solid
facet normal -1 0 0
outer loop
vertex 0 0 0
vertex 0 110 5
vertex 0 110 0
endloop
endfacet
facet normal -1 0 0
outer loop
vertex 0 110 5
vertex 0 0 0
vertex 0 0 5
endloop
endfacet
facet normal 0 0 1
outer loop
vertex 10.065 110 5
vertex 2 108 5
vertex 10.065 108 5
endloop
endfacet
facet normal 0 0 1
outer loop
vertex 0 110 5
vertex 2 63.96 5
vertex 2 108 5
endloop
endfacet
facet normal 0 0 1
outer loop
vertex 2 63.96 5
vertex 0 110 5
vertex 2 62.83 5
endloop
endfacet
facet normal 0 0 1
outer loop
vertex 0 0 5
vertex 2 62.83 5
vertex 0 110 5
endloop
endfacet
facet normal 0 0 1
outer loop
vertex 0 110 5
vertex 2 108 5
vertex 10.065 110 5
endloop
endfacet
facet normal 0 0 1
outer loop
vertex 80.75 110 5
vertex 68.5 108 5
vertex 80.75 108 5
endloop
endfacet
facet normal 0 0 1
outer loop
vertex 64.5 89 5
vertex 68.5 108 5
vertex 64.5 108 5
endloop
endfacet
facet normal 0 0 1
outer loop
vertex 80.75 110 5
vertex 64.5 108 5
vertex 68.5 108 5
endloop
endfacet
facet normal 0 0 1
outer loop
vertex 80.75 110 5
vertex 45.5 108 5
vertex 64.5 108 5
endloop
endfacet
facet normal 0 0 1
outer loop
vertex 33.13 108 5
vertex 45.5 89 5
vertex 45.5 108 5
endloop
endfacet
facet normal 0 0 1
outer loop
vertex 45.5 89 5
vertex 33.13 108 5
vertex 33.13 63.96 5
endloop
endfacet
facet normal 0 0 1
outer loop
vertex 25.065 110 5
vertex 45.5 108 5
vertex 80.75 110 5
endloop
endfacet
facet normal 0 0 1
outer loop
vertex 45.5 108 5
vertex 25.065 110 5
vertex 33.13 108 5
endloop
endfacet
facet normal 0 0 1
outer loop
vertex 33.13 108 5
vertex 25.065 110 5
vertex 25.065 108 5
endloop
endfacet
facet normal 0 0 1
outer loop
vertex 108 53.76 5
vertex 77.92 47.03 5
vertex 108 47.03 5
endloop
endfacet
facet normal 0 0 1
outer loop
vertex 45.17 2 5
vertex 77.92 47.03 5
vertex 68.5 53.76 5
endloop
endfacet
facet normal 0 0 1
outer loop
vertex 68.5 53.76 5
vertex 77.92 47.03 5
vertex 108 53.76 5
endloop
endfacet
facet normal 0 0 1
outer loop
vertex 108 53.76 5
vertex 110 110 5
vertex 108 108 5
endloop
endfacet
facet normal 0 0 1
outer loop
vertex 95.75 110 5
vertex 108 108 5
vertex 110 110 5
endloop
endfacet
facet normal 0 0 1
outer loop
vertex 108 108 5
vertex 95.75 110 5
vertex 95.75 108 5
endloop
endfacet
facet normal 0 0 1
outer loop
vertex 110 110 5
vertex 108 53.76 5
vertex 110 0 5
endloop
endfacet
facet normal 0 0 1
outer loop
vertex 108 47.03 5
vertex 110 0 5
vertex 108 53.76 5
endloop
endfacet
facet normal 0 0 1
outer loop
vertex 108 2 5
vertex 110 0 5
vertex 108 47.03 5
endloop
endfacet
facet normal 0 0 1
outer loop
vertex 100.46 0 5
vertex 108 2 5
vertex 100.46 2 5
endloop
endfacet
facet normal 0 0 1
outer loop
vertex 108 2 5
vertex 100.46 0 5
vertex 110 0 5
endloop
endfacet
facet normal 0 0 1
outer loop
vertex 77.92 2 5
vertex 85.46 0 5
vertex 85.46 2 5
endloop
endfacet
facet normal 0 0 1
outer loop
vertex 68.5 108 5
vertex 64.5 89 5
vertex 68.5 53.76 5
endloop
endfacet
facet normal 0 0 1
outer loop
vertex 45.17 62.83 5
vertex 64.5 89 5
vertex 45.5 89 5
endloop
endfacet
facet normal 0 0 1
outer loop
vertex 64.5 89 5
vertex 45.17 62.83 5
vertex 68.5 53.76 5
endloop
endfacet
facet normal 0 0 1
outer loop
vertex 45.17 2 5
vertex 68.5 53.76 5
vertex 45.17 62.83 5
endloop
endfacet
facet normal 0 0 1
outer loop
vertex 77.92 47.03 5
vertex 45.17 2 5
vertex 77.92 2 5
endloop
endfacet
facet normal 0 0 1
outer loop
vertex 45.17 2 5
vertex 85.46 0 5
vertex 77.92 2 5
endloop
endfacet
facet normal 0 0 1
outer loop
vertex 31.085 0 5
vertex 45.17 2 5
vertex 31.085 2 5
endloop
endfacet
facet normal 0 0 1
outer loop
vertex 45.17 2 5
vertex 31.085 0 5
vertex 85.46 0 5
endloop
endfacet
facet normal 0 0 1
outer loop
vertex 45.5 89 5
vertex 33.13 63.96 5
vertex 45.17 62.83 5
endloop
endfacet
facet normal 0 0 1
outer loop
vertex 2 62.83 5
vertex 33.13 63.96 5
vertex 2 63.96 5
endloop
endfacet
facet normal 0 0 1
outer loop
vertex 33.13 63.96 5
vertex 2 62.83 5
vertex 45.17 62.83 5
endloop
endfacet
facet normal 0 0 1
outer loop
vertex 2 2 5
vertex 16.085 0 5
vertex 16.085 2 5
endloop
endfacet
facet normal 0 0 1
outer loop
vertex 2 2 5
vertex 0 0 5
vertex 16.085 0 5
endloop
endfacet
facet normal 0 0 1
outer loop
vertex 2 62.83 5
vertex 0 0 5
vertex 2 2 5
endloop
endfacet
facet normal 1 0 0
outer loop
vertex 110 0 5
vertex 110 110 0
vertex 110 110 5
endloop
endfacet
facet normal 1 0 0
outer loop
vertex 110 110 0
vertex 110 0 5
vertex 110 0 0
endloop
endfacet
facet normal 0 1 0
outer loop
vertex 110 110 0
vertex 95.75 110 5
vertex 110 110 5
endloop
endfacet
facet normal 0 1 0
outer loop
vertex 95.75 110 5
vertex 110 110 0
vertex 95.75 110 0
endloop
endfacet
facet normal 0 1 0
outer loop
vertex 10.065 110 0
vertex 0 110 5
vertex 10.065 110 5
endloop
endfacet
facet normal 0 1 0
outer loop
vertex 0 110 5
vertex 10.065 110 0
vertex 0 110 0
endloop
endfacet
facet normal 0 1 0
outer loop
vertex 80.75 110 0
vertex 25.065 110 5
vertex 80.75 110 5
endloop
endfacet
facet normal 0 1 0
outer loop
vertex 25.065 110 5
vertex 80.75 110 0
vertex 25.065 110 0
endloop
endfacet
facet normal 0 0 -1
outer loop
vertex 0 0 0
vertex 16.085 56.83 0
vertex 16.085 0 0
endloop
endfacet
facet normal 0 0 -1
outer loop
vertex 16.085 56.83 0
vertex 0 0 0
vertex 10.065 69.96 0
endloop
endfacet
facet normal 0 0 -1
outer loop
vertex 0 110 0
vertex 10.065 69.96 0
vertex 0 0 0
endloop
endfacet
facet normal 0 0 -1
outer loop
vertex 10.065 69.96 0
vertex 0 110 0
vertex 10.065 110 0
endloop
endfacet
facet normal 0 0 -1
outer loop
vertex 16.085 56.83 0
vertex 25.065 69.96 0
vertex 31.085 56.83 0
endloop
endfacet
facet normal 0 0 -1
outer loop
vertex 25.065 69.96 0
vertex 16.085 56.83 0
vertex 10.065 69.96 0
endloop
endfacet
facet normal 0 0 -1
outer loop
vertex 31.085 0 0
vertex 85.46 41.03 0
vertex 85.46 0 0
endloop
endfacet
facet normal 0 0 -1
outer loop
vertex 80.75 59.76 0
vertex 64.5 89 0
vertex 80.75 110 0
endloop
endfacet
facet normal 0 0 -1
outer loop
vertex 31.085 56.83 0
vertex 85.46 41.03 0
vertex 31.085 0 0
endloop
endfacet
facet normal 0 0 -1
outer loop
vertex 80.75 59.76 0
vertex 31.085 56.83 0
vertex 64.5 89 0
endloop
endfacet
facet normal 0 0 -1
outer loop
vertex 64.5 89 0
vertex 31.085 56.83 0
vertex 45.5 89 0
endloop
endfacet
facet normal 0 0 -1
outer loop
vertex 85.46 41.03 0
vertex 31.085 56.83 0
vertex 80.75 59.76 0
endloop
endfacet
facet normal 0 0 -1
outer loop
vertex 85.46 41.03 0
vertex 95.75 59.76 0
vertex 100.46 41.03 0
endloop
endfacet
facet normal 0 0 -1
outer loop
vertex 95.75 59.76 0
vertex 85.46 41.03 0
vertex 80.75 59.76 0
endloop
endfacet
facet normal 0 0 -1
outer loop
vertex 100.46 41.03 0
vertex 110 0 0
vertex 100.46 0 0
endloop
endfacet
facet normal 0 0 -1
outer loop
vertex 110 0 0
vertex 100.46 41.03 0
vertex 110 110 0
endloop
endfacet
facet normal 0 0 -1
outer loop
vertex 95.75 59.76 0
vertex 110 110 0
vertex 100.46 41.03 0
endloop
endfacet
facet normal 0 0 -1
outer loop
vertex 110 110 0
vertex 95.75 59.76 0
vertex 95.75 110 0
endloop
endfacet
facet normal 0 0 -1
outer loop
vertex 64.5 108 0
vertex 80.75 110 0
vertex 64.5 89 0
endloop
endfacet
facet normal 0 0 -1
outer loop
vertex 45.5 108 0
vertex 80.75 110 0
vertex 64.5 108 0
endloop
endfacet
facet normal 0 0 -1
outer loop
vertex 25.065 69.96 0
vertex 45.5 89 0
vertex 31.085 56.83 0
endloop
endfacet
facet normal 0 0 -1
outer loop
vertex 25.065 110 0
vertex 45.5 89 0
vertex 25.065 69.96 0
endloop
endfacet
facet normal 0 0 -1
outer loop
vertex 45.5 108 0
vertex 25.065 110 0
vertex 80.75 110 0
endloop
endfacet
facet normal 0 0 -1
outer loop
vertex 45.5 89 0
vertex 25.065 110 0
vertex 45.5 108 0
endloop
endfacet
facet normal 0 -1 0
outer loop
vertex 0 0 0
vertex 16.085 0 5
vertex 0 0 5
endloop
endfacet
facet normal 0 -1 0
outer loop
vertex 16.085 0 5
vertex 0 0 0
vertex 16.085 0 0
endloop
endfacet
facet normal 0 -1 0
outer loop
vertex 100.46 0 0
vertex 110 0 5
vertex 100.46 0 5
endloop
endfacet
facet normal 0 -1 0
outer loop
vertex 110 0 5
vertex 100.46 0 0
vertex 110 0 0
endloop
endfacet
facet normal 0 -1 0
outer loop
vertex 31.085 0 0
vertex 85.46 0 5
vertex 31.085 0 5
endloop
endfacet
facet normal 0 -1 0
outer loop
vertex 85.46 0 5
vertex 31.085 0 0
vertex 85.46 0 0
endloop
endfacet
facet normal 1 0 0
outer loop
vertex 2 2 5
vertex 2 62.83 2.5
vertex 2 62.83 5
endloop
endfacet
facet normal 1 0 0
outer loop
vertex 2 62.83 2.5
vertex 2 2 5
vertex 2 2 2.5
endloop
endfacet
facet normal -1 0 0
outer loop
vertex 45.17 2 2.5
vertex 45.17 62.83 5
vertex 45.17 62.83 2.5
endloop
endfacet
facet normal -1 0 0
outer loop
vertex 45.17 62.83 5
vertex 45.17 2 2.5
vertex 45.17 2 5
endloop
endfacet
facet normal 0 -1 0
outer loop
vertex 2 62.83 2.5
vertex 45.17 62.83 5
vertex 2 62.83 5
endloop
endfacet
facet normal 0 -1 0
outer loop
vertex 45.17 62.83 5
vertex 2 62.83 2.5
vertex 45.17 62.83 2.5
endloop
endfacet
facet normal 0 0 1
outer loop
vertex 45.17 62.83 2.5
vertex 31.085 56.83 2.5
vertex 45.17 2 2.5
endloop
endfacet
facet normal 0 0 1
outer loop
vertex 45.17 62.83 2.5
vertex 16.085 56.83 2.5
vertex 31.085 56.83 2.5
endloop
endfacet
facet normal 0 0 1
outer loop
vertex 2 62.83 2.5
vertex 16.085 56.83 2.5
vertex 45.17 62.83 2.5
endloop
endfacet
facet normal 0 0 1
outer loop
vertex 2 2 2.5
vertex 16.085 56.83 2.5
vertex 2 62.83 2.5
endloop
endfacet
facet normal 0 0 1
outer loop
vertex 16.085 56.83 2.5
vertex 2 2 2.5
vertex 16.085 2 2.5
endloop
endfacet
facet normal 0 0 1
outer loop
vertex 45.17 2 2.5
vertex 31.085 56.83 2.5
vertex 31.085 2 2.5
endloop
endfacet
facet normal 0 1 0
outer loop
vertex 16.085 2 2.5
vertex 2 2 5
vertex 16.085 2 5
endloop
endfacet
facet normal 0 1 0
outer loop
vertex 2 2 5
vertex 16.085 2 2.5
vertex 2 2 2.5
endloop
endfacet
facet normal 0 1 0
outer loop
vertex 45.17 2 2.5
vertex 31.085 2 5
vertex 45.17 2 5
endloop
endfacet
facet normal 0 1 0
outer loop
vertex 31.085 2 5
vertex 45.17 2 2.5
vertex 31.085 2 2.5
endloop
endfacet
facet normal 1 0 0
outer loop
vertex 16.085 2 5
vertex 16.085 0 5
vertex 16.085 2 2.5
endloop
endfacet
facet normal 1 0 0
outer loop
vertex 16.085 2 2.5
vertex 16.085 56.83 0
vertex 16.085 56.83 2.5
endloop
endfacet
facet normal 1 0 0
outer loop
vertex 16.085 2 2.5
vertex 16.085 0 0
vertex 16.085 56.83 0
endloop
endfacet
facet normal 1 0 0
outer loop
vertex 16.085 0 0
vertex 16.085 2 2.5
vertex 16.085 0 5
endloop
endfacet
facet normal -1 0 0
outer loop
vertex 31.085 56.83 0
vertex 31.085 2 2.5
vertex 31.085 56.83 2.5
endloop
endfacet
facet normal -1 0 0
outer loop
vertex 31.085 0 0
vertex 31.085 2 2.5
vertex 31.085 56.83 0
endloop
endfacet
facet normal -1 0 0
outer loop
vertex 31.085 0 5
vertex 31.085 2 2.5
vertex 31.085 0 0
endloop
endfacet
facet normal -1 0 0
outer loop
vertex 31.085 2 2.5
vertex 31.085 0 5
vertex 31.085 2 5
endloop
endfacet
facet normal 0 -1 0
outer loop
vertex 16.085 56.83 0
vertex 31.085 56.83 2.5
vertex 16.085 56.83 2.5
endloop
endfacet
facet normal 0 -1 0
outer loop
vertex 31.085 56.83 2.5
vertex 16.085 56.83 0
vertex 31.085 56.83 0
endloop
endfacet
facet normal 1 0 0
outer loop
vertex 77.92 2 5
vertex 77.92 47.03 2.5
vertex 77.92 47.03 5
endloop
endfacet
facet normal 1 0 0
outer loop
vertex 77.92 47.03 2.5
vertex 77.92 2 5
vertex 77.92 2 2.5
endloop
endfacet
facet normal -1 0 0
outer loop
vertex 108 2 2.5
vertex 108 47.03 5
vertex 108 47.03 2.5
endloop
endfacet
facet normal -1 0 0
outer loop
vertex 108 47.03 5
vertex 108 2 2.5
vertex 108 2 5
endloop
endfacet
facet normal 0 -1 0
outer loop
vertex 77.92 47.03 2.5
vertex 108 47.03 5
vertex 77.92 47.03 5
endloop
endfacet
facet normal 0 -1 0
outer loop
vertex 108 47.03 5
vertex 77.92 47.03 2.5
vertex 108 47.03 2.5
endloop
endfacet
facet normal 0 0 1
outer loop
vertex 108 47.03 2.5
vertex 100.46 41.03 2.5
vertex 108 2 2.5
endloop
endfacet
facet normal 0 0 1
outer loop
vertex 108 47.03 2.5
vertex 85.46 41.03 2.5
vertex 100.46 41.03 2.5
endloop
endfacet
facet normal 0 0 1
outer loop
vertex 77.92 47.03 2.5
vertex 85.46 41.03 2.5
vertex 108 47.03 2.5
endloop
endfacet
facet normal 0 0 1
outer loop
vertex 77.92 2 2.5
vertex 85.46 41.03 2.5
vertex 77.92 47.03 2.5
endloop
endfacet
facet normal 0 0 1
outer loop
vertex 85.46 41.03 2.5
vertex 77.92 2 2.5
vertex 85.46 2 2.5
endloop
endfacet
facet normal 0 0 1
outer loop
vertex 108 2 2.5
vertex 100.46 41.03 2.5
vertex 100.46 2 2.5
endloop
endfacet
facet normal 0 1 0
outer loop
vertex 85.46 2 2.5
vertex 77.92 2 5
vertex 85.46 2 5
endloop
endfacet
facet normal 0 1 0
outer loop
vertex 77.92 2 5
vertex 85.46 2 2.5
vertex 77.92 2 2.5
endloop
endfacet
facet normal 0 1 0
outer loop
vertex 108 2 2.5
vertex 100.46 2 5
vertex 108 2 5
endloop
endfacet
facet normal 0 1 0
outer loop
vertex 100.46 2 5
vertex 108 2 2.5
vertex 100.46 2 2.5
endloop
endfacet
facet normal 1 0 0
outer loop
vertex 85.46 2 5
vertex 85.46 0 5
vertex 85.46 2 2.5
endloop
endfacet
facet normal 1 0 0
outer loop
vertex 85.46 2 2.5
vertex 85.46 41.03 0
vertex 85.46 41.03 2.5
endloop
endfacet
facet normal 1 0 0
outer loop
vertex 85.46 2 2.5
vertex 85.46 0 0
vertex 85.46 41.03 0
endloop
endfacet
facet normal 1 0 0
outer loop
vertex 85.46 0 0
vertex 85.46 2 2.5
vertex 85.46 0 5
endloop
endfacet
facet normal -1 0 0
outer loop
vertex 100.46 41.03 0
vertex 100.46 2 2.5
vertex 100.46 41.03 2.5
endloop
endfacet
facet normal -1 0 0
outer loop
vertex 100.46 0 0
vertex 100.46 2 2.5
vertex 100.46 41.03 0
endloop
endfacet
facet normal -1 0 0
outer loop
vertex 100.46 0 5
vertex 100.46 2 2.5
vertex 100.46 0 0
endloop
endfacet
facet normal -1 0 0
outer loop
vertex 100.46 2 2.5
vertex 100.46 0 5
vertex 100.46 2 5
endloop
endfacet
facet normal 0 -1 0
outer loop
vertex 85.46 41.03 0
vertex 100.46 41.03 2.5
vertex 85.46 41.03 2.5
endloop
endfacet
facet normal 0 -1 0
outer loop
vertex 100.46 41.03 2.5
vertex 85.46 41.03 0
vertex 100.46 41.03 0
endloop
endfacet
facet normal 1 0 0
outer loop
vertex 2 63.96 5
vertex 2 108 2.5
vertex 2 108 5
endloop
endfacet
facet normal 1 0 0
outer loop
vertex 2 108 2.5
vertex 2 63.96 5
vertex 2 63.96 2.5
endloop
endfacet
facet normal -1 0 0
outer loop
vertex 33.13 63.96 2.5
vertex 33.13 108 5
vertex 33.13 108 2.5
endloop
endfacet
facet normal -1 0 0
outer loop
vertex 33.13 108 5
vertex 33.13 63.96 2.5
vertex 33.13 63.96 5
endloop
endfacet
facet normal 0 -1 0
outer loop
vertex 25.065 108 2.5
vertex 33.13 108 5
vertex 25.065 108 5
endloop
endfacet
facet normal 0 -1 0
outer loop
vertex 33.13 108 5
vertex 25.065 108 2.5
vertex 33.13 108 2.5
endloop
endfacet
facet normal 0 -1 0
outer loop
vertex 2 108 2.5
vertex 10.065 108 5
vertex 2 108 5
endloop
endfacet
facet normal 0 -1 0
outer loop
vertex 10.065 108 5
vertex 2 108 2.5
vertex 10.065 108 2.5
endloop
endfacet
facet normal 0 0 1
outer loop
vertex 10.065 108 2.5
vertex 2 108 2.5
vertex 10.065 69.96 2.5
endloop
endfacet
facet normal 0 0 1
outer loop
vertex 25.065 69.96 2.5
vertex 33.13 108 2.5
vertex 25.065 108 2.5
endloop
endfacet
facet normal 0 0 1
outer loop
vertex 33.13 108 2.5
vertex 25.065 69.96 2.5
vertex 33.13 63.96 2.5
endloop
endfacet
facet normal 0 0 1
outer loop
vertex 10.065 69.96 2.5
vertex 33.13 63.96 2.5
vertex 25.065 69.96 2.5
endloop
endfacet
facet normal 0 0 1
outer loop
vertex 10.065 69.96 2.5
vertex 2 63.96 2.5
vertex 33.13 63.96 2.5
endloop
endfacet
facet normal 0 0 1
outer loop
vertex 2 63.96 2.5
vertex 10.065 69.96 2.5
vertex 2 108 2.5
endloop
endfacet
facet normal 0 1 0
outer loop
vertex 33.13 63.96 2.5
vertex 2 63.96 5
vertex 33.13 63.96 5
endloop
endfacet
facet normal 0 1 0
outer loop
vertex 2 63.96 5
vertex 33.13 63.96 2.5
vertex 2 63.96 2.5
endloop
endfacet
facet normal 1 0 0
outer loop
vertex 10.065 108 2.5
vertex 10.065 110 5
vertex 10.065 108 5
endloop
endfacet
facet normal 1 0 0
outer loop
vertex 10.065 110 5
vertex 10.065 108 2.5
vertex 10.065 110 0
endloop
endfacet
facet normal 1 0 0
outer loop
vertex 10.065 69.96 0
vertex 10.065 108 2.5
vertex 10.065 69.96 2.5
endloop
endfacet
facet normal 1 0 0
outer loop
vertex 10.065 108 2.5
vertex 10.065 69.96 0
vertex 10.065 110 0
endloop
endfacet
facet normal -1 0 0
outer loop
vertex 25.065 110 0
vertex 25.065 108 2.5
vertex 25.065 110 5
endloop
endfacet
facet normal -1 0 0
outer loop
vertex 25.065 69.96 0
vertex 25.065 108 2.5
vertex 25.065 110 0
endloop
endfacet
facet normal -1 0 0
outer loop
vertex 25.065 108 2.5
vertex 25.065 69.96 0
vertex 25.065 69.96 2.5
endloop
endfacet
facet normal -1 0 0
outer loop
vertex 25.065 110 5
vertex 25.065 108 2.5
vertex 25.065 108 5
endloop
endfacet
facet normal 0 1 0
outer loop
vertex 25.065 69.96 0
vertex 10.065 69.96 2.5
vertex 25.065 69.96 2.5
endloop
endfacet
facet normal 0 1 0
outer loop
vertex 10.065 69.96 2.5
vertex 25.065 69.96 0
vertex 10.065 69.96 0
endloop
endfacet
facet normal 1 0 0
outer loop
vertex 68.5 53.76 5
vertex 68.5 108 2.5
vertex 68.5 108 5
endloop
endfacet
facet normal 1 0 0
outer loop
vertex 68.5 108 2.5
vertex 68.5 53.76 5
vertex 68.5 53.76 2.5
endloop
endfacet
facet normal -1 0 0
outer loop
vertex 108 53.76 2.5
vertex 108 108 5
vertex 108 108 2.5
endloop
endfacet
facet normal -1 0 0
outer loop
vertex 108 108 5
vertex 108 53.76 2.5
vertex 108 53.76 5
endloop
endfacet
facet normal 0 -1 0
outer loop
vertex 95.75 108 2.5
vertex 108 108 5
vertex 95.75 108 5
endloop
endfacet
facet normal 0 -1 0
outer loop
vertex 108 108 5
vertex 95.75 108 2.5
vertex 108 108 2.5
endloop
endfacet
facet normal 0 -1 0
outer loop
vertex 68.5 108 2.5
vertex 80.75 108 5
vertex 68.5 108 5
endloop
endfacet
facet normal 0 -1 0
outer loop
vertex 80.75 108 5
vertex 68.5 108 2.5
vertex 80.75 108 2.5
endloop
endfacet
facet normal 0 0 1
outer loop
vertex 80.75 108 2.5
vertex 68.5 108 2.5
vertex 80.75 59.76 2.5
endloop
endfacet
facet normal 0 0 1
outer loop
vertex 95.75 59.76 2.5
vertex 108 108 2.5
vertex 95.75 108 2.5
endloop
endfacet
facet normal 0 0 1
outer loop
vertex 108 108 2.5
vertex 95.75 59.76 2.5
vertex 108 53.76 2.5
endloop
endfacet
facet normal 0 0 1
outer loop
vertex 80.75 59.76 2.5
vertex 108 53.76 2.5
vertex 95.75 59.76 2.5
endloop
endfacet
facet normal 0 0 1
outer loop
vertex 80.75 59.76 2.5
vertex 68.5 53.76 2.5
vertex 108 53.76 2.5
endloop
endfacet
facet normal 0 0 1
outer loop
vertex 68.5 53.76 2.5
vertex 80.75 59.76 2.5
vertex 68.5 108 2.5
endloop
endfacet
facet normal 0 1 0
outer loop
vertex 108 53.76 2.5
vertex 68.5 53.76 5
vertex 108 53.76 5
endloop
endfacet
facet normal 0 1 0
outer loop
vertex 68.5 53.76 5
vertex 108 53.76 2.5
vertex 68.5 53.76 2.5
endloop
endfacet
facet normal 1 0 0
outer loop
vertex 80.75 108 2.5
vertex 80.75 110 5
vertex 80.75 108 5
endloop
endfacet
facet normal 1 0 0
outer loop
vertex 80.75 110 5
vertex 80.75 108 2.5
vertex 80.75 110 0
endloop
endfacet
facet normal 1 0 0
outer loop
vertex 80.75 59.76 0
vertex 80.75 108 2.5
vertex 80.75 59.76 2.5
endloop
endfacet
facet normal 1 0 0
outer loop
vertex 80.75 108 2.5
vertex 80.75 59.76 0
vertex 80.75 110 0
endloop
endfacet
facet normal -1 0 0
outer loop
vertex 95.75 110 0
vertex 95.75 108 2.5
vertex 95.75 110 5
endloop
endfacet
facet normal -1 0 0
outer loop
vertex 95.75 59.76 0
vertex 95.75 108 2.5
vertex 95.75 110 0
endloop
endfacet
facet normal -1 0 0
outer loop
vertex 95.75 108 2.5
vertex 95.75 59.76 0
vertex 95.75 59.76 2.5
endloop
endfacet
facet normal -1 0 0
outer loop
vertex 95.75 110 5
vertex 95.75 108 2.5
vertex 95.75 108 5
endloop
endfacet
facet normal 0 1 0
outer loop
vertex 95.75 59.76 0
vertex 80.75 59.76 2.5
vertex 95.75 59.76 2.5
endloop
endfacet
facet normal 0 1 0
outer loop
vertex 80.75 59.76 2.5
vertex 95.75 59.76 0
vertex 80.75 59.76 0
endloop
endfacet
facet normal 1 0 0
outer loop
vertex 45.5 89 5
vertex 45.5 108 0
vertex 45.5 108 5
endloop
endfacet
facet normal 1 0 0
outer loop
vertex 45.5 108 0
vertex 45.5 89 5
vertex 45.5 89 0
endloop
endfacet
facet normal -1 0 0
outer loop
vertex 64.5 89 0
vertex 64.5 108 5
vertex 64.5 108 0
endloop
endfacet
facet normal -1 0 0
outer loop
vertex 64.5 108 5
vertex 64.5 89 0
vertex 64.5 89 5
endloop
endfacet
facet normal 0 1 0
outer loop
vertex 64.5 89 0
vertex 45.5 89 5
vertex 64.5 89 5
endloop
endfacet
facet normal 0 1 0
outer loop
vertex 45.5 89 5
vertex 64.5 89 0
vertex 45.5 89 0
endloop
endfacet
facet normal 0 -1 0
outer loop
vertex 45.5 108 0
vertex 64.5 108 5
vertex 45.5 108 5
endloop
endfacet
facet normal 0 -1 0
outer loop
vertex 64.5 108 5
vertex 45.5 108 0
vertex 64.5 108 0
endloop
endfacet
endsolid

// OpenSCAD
length = 110;
width = 110;
height = 5;

//Based on magnet size:
magnetBaseInnerDiameter = 19;
magnetHeight = 4.0;

//      prime demon 59.83 x 42.17
//		captain of the guard 44.03 x 29.08
//		jekserah 43.04 x 30.13
//		dark rider 53.24 x 38.5

token1Width = 59.83 + 1;
token1Length = 42.17 + 1;
token1Height = 2 + .5;
token1SquareLipWidthRemainder = token1Length - 15;
token1SquareLipLengthRemainder = 4;

token3Width = 44.03 + 1;
token3Length = 29.08 + 1;
token3Height = 2 + .5;
token3SquareLipWidthRemainder = token3Length - 15;
token3SquareLipLengthRemainder = 4;

token4Width = 43.04 + 1;
token4Length = 30.13 + 1;
token4Height = 2 + .5;
token4SquareLipWidthRemainder = token4Length - 15;
token4SquareLipLengthRemainder = 4;

token6Width = 53.24 + 1;
token6Length = 38.5 + 1;
token6Height = 2 + .5;
token6SquareLipWidthRemainder = token6Length - 15;
token6SquareLipLengthRemainder = 4;

spaceBetweenCircles = 2;
wallThickness = spaceBetweenCircles;



difference(){
    cube([length, width, height]);


//----------------------------------
translate(
        [
            wallThickness,
            wallThickness,
            height - token1Height
        ])
        cube([token1Length,token1Width, token1Height]);
    translate([
        wallThickness + token1SquareLipWidthRemainder/2,
        0,
        0])
        cube([
            token1Length - token1SquareLipWidthRemainder,
            token1Width - token1SquareLipLengthRemainder,
            height]);

            
translate(
        [
            length - (wallThickness + token3Length),
            wallThickness,
            height - token3Height
        ])
        cube([token3Length,token3Width, token3Height]);
    translate([
        length - (wallThickness + token3Length) + token3SquareLipWidthRemainder/2,
        0,
        0])
        cube([
            token3Length - token3SquareLipWidthRemainder,
            token3Width - token3SquareLipLengthRemainder,
            height]);

            
//---------------------------------------------------------------------
    
    translate(
        [
            wallThickness,
            width - (wallThickness + token4Width),
            height - token4Height
        ])
        cube([token4Length,token4Width, token4Height]);
    translate([
        wallThickness + token4SquareLipWidthRemainder/2,
        width - (token4Width - token4SquareLipLengthRemainder),
        0])
        cube([
            token4Length - token4SquareLipWidthRemainder,
            token4Width - token4SquareLipLengthRemainder,
            height]);
            
    

    translate(
        [
            length - (wallThickness + token6Length),
            width - (wallThickness + token6Width),
            height - token6Height
        ])
        cube([token6Length,token6Width, token6Height]);
    translate([
        length - (wallThickness + token6Length) + token6SquareLipWidthRemainder/2,
        width - (token6Width - token6SquareLipLengthRemainder),
        0])
        cube([
            token6Length - token6SquareLipWidthRemainder,
            token6Width - token6SquareLipLengthRemainder,
            height]);       

//----------------------------------------
   
    translate([length/2 - magnetBaseInnerDiameter/2, length - (wallThickness + magnetBaseInnerDiameter), 0])
        cube([magnetBaseInnerDiameter, magnetBaseInnerDiameter, height]);
        

}
